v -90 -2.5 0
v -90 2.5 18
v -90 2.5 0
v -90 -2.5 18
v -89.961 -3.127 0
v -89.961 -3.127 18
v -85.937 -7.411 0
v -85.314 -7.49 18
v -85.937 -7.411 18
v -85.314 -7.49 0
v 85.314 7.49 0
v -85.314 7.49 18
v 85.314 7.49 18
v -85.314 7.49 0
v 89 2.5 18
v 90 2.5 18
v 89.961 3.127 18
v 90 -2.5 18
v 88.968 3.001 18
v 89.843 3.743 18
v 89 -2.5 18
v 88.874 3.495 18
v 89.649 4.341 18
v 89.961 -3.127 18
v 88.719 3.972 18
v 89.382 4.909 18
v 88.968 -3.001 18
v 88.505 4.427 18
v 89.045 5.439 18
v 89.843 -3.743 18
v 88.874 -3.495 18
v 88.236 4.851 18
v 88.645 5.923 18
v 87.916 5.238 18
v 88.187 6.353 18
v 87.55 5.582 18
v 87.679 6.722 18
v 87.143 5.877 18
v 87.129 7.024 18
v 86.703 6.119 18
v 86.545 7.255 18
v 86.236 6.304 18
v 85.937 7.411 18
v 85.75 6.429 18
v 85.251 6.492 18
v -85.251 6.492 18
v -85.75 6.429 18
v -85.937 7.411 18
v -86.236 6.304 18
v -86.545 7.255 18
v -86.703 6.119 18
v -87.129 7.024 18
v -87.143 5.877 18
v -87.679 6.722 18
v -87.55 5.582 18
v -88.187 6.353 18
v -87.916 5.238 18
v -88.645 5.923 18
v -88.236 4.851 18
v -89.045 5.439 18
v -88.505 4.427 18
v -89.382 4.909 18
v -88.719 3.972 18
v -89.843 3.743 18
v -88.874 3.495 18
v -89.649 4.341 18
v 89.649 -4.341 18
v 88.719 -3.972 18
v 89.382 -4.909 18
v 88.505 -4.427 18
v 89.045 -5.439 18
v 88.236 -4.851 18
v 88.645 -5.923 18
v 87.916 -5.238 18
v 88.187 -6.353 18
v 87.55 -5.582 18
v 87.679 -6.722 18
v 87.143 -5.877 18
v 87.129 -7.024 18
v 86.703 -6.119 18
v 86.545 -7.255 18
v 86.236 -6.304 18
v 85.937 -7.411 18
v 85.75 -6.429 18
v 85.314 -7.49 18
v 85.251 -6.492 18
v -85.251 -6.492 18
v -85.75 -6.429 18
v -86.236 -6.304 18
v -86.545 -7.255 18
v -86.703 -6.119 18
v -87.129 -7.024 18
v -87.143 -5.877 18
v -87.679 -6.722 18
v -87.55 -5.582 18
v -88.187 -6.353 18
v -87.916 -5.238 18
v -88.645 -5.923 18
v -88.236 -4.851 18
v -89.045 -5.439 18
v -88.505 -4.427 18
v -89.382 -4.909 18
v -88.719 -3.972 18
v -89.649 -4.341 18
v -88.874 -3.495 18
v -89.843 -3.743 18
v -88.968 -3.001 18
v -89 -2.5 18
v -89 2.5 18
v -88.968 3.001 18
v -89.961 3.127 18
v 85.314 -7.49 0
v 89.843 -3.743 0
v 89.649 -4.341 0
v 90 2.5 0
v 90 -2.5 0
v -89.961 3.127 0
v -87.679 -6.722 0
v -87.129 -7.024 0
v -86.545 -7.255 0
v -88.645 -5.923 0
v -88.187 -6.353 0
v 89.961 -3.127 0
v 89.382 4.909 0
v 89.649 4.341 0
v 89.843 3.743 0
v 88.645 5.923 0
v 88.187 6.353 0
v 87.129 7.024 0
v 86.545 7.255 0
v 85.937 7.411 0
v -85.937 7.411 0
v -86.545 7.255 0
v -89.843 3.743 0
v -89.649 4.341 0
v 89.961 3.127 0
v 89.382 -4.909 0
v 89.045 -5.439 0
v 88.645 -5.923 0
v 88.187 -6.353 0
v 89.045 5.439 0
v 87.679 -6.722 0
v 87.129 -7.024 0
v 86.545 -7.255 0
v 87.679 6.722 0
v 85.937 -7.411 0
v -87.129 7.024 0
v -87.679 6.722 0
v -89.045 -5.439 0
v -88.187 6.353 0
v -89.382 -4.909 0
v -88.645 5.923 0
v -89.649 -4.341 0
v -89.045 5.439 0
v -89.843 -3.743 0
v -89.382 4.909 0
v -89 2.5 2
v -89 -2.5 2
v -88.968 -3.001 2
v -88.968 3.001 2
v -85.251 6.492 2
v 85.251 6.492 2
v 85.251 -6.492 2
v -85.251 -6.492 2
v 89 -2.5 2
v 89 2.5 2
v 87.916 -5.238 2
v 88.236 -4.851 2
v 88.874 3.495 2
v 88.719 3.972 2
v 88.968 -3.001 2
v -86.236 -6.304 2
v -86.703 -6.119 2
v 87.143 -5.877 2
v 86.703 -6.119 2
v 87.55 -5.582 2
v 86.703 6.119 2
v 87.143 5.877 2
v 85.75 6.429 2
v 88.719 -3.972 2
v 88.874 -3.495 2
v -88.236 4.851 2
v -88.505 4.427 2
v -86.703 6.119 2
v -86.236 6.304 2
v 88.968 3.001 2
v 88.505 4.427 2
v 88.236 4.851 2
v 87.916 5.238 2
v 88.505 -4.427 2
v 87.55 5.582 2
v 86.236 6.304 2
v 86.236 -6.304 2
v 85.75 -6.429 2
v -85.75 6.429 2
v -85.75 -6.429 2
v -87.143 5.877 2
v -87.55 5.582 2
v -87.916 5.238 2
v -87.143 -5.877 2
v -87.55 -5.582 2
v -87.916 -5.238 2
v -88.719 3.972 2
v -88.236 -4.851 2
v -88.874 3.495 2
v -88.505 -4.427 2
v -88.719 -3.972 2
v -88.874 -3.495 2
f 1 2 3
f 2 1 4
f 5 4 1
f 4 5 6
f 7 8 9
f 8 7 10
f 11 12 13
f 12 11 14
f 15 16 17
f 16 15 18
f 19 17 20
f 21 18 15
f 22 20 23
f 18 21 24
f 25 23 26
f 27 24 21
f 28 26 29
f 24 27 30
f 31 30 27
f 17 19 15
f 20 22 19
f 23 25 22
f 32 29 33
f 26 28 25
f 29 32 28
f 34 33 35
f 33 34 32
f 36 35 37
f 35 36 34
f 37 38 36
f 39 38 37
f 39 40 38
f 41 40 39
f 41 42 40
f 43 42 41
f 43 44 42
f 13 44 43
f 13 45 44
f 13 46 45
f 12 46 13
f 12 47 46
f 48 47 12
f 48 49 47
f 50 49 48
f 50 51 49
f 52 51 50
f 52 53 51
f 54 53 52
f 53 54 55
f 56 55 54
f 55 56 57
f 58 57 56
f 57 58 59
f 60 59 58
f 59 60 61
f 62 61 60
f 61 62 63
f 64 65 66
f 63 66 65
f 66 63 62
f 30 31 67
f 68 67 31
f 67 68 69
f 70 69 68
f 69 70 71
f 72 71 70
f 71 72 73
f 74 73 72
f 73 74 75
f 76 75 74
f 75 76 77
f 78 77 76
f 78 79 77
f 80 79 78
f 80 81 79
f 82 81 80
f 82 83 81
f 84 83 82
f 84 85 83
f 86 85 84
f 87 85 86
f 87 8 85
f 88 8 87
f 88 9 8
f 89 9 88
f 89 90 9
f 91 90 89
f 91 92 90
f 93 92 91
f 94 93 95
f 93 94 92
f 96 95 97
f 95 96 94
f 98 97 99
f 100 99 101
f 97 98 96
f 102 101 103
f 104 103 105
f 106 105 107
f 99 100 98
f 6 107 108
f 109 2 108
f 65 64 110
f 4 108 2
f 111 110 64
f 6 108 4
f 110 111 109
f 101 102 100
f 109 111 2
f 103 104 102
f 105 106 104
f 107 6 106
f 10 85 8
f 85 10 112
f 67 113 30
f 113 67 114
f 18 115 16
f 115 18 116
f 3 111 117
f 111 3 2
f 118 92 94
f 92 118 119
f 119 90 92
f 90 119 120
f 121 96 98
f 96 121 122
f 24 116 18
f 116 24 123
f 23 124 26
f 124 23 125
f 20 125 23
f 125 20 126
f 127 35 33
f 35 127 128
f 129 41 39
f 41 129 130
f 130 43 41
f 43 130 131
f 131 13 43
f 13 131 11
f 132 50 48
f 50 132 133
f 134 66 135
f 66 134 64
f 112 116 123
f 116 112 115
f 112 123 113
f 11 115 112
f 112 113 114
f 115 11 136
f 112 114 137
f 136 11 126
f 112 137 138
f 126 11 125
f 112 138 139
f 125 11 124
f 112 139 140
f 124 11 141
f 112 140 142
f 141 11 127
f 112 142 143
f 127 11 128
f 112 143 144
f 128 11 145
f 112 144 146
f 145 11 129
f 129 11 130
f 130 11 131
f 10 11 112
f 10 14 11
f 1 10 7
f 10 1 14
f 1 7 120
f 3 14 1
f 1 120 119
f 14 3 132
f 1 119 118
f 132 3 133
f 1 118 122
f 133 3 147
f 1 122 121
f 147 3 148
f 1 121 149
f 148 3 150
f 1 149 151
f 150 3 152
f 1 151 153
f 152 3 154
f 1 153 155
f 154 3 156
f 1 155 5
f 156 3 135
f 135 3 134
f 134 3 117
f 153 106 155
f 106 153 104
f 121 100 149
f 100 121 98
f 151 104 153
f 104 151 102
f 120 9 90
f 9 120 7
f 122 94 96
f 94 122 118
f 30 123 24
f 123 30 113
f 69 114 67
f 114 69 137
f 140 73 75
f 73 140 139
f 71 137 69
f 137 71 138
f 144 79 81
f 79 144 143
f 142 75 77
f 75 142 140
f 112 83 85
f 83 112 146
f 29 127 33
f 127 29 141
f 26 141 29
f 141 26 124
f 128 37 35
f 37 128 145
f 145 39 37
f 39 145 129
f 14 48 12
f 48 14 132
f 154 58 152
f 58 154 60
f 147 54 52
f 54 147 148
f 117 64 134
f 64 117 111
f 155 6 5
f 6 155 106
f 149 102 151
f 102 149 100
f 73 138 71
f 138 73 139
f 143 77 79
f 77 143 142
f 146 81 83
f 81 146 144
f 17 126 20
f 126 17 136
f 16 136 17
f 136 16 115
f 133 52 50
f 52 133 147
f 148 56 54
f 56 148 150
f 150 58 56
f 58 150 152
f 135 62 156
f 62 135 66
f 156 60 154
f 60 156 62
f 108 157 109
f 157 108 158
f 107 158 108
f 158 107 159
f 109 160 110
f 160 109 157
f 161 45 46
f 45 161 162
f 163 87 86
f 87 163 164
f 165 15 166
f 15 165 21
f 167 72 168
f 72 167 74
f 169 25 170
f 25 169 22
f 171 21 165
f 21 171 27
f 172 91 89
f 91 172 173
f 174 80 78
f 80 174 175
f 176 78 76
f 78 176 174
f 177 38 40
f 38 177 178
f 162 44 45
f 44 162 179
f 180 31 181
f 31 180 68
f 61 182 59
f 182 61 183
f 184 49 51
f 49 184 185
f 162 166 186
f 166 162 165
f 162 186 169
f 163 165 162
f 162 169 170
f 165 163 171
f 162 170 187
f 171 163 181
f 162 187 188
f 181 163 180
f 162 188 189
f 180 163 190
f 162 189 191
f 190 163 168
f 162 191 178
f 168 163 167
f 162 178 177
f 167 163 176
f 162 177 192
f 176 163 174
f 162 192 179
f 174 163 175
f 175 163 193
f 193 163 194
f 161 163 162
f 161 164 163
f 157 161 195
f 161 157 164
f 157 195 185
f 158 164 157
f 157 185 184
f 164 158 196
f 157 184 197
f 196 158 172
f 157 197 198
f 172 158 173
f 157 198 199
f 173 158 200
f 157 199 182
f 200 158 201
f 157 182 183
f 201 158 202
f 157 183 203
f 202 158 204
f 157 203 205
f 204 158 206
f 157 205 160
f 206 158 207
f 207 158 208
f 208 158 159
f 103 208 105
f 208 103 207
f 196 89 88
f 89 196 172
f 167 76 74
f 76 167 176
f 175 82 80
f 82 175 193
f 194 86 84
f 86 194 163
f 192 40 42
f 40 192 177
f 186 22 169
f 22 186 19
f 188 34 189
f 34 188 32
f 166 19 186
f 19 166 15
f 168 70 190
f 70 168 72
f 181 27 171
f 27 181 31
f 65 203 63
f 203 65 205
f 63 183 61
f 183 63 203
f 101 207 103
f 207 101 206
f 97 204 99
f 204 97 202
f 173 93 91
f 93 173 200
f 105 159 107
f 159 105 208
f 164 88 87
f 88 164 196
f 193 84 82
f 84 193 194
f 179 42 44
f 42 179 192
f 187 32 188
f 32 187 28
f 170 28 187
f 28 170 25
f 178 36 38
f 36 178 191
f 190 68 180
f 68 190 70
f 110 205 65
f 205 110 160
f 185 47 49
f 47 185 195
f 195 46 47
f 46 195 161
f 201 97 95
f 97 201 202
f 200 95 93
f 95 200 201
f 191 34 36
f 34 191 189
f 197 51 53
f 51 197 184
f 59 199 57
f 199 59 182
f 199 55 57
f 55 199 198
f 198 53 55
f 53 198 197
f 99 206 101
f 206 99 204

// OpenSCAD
$fn = 50;


difference() {
	union() {
		hull() {
			translate(v = [-85.0000000000, 2.5000000000, 0]) {
				cylinder(h = 18, r = 5);
			}
			translate(v = [85.0000000000, 2.5000000000, 0]) {
				cylinder(h = 18, r = 5);
			}
			translate(v = [-85.0000000000, -2.5000000000, 0]) {
				cylinder(h = 18, r = 5);
			}
			translate(v = [85.0000000000, -2.5000000000, 0]) {
				cylinder(h = 18, r = 5);
			}
		}
	}
	union() {
		translate(v = [0, 0, 2]) {
			hull() {
				translate(v = [-85.0000000000, 2.5000000000, 0]) {
					cylinder(h = 16, r = 4);
				}
				translate(v = [85.0000000000, 2.5000000000, 0]) {
					cylinder(h = 16, r = 4);
				}
				translate(v = [-85.0000000000, -2.5000000000, 0]) {
					cylinder(h = 16, r = 4);
				}
				translate(v = [85.0000000000, -2.5000000000, 0]) {
					cylinder(h = 16, r = 4);
				}
			}
		}
	}
}
